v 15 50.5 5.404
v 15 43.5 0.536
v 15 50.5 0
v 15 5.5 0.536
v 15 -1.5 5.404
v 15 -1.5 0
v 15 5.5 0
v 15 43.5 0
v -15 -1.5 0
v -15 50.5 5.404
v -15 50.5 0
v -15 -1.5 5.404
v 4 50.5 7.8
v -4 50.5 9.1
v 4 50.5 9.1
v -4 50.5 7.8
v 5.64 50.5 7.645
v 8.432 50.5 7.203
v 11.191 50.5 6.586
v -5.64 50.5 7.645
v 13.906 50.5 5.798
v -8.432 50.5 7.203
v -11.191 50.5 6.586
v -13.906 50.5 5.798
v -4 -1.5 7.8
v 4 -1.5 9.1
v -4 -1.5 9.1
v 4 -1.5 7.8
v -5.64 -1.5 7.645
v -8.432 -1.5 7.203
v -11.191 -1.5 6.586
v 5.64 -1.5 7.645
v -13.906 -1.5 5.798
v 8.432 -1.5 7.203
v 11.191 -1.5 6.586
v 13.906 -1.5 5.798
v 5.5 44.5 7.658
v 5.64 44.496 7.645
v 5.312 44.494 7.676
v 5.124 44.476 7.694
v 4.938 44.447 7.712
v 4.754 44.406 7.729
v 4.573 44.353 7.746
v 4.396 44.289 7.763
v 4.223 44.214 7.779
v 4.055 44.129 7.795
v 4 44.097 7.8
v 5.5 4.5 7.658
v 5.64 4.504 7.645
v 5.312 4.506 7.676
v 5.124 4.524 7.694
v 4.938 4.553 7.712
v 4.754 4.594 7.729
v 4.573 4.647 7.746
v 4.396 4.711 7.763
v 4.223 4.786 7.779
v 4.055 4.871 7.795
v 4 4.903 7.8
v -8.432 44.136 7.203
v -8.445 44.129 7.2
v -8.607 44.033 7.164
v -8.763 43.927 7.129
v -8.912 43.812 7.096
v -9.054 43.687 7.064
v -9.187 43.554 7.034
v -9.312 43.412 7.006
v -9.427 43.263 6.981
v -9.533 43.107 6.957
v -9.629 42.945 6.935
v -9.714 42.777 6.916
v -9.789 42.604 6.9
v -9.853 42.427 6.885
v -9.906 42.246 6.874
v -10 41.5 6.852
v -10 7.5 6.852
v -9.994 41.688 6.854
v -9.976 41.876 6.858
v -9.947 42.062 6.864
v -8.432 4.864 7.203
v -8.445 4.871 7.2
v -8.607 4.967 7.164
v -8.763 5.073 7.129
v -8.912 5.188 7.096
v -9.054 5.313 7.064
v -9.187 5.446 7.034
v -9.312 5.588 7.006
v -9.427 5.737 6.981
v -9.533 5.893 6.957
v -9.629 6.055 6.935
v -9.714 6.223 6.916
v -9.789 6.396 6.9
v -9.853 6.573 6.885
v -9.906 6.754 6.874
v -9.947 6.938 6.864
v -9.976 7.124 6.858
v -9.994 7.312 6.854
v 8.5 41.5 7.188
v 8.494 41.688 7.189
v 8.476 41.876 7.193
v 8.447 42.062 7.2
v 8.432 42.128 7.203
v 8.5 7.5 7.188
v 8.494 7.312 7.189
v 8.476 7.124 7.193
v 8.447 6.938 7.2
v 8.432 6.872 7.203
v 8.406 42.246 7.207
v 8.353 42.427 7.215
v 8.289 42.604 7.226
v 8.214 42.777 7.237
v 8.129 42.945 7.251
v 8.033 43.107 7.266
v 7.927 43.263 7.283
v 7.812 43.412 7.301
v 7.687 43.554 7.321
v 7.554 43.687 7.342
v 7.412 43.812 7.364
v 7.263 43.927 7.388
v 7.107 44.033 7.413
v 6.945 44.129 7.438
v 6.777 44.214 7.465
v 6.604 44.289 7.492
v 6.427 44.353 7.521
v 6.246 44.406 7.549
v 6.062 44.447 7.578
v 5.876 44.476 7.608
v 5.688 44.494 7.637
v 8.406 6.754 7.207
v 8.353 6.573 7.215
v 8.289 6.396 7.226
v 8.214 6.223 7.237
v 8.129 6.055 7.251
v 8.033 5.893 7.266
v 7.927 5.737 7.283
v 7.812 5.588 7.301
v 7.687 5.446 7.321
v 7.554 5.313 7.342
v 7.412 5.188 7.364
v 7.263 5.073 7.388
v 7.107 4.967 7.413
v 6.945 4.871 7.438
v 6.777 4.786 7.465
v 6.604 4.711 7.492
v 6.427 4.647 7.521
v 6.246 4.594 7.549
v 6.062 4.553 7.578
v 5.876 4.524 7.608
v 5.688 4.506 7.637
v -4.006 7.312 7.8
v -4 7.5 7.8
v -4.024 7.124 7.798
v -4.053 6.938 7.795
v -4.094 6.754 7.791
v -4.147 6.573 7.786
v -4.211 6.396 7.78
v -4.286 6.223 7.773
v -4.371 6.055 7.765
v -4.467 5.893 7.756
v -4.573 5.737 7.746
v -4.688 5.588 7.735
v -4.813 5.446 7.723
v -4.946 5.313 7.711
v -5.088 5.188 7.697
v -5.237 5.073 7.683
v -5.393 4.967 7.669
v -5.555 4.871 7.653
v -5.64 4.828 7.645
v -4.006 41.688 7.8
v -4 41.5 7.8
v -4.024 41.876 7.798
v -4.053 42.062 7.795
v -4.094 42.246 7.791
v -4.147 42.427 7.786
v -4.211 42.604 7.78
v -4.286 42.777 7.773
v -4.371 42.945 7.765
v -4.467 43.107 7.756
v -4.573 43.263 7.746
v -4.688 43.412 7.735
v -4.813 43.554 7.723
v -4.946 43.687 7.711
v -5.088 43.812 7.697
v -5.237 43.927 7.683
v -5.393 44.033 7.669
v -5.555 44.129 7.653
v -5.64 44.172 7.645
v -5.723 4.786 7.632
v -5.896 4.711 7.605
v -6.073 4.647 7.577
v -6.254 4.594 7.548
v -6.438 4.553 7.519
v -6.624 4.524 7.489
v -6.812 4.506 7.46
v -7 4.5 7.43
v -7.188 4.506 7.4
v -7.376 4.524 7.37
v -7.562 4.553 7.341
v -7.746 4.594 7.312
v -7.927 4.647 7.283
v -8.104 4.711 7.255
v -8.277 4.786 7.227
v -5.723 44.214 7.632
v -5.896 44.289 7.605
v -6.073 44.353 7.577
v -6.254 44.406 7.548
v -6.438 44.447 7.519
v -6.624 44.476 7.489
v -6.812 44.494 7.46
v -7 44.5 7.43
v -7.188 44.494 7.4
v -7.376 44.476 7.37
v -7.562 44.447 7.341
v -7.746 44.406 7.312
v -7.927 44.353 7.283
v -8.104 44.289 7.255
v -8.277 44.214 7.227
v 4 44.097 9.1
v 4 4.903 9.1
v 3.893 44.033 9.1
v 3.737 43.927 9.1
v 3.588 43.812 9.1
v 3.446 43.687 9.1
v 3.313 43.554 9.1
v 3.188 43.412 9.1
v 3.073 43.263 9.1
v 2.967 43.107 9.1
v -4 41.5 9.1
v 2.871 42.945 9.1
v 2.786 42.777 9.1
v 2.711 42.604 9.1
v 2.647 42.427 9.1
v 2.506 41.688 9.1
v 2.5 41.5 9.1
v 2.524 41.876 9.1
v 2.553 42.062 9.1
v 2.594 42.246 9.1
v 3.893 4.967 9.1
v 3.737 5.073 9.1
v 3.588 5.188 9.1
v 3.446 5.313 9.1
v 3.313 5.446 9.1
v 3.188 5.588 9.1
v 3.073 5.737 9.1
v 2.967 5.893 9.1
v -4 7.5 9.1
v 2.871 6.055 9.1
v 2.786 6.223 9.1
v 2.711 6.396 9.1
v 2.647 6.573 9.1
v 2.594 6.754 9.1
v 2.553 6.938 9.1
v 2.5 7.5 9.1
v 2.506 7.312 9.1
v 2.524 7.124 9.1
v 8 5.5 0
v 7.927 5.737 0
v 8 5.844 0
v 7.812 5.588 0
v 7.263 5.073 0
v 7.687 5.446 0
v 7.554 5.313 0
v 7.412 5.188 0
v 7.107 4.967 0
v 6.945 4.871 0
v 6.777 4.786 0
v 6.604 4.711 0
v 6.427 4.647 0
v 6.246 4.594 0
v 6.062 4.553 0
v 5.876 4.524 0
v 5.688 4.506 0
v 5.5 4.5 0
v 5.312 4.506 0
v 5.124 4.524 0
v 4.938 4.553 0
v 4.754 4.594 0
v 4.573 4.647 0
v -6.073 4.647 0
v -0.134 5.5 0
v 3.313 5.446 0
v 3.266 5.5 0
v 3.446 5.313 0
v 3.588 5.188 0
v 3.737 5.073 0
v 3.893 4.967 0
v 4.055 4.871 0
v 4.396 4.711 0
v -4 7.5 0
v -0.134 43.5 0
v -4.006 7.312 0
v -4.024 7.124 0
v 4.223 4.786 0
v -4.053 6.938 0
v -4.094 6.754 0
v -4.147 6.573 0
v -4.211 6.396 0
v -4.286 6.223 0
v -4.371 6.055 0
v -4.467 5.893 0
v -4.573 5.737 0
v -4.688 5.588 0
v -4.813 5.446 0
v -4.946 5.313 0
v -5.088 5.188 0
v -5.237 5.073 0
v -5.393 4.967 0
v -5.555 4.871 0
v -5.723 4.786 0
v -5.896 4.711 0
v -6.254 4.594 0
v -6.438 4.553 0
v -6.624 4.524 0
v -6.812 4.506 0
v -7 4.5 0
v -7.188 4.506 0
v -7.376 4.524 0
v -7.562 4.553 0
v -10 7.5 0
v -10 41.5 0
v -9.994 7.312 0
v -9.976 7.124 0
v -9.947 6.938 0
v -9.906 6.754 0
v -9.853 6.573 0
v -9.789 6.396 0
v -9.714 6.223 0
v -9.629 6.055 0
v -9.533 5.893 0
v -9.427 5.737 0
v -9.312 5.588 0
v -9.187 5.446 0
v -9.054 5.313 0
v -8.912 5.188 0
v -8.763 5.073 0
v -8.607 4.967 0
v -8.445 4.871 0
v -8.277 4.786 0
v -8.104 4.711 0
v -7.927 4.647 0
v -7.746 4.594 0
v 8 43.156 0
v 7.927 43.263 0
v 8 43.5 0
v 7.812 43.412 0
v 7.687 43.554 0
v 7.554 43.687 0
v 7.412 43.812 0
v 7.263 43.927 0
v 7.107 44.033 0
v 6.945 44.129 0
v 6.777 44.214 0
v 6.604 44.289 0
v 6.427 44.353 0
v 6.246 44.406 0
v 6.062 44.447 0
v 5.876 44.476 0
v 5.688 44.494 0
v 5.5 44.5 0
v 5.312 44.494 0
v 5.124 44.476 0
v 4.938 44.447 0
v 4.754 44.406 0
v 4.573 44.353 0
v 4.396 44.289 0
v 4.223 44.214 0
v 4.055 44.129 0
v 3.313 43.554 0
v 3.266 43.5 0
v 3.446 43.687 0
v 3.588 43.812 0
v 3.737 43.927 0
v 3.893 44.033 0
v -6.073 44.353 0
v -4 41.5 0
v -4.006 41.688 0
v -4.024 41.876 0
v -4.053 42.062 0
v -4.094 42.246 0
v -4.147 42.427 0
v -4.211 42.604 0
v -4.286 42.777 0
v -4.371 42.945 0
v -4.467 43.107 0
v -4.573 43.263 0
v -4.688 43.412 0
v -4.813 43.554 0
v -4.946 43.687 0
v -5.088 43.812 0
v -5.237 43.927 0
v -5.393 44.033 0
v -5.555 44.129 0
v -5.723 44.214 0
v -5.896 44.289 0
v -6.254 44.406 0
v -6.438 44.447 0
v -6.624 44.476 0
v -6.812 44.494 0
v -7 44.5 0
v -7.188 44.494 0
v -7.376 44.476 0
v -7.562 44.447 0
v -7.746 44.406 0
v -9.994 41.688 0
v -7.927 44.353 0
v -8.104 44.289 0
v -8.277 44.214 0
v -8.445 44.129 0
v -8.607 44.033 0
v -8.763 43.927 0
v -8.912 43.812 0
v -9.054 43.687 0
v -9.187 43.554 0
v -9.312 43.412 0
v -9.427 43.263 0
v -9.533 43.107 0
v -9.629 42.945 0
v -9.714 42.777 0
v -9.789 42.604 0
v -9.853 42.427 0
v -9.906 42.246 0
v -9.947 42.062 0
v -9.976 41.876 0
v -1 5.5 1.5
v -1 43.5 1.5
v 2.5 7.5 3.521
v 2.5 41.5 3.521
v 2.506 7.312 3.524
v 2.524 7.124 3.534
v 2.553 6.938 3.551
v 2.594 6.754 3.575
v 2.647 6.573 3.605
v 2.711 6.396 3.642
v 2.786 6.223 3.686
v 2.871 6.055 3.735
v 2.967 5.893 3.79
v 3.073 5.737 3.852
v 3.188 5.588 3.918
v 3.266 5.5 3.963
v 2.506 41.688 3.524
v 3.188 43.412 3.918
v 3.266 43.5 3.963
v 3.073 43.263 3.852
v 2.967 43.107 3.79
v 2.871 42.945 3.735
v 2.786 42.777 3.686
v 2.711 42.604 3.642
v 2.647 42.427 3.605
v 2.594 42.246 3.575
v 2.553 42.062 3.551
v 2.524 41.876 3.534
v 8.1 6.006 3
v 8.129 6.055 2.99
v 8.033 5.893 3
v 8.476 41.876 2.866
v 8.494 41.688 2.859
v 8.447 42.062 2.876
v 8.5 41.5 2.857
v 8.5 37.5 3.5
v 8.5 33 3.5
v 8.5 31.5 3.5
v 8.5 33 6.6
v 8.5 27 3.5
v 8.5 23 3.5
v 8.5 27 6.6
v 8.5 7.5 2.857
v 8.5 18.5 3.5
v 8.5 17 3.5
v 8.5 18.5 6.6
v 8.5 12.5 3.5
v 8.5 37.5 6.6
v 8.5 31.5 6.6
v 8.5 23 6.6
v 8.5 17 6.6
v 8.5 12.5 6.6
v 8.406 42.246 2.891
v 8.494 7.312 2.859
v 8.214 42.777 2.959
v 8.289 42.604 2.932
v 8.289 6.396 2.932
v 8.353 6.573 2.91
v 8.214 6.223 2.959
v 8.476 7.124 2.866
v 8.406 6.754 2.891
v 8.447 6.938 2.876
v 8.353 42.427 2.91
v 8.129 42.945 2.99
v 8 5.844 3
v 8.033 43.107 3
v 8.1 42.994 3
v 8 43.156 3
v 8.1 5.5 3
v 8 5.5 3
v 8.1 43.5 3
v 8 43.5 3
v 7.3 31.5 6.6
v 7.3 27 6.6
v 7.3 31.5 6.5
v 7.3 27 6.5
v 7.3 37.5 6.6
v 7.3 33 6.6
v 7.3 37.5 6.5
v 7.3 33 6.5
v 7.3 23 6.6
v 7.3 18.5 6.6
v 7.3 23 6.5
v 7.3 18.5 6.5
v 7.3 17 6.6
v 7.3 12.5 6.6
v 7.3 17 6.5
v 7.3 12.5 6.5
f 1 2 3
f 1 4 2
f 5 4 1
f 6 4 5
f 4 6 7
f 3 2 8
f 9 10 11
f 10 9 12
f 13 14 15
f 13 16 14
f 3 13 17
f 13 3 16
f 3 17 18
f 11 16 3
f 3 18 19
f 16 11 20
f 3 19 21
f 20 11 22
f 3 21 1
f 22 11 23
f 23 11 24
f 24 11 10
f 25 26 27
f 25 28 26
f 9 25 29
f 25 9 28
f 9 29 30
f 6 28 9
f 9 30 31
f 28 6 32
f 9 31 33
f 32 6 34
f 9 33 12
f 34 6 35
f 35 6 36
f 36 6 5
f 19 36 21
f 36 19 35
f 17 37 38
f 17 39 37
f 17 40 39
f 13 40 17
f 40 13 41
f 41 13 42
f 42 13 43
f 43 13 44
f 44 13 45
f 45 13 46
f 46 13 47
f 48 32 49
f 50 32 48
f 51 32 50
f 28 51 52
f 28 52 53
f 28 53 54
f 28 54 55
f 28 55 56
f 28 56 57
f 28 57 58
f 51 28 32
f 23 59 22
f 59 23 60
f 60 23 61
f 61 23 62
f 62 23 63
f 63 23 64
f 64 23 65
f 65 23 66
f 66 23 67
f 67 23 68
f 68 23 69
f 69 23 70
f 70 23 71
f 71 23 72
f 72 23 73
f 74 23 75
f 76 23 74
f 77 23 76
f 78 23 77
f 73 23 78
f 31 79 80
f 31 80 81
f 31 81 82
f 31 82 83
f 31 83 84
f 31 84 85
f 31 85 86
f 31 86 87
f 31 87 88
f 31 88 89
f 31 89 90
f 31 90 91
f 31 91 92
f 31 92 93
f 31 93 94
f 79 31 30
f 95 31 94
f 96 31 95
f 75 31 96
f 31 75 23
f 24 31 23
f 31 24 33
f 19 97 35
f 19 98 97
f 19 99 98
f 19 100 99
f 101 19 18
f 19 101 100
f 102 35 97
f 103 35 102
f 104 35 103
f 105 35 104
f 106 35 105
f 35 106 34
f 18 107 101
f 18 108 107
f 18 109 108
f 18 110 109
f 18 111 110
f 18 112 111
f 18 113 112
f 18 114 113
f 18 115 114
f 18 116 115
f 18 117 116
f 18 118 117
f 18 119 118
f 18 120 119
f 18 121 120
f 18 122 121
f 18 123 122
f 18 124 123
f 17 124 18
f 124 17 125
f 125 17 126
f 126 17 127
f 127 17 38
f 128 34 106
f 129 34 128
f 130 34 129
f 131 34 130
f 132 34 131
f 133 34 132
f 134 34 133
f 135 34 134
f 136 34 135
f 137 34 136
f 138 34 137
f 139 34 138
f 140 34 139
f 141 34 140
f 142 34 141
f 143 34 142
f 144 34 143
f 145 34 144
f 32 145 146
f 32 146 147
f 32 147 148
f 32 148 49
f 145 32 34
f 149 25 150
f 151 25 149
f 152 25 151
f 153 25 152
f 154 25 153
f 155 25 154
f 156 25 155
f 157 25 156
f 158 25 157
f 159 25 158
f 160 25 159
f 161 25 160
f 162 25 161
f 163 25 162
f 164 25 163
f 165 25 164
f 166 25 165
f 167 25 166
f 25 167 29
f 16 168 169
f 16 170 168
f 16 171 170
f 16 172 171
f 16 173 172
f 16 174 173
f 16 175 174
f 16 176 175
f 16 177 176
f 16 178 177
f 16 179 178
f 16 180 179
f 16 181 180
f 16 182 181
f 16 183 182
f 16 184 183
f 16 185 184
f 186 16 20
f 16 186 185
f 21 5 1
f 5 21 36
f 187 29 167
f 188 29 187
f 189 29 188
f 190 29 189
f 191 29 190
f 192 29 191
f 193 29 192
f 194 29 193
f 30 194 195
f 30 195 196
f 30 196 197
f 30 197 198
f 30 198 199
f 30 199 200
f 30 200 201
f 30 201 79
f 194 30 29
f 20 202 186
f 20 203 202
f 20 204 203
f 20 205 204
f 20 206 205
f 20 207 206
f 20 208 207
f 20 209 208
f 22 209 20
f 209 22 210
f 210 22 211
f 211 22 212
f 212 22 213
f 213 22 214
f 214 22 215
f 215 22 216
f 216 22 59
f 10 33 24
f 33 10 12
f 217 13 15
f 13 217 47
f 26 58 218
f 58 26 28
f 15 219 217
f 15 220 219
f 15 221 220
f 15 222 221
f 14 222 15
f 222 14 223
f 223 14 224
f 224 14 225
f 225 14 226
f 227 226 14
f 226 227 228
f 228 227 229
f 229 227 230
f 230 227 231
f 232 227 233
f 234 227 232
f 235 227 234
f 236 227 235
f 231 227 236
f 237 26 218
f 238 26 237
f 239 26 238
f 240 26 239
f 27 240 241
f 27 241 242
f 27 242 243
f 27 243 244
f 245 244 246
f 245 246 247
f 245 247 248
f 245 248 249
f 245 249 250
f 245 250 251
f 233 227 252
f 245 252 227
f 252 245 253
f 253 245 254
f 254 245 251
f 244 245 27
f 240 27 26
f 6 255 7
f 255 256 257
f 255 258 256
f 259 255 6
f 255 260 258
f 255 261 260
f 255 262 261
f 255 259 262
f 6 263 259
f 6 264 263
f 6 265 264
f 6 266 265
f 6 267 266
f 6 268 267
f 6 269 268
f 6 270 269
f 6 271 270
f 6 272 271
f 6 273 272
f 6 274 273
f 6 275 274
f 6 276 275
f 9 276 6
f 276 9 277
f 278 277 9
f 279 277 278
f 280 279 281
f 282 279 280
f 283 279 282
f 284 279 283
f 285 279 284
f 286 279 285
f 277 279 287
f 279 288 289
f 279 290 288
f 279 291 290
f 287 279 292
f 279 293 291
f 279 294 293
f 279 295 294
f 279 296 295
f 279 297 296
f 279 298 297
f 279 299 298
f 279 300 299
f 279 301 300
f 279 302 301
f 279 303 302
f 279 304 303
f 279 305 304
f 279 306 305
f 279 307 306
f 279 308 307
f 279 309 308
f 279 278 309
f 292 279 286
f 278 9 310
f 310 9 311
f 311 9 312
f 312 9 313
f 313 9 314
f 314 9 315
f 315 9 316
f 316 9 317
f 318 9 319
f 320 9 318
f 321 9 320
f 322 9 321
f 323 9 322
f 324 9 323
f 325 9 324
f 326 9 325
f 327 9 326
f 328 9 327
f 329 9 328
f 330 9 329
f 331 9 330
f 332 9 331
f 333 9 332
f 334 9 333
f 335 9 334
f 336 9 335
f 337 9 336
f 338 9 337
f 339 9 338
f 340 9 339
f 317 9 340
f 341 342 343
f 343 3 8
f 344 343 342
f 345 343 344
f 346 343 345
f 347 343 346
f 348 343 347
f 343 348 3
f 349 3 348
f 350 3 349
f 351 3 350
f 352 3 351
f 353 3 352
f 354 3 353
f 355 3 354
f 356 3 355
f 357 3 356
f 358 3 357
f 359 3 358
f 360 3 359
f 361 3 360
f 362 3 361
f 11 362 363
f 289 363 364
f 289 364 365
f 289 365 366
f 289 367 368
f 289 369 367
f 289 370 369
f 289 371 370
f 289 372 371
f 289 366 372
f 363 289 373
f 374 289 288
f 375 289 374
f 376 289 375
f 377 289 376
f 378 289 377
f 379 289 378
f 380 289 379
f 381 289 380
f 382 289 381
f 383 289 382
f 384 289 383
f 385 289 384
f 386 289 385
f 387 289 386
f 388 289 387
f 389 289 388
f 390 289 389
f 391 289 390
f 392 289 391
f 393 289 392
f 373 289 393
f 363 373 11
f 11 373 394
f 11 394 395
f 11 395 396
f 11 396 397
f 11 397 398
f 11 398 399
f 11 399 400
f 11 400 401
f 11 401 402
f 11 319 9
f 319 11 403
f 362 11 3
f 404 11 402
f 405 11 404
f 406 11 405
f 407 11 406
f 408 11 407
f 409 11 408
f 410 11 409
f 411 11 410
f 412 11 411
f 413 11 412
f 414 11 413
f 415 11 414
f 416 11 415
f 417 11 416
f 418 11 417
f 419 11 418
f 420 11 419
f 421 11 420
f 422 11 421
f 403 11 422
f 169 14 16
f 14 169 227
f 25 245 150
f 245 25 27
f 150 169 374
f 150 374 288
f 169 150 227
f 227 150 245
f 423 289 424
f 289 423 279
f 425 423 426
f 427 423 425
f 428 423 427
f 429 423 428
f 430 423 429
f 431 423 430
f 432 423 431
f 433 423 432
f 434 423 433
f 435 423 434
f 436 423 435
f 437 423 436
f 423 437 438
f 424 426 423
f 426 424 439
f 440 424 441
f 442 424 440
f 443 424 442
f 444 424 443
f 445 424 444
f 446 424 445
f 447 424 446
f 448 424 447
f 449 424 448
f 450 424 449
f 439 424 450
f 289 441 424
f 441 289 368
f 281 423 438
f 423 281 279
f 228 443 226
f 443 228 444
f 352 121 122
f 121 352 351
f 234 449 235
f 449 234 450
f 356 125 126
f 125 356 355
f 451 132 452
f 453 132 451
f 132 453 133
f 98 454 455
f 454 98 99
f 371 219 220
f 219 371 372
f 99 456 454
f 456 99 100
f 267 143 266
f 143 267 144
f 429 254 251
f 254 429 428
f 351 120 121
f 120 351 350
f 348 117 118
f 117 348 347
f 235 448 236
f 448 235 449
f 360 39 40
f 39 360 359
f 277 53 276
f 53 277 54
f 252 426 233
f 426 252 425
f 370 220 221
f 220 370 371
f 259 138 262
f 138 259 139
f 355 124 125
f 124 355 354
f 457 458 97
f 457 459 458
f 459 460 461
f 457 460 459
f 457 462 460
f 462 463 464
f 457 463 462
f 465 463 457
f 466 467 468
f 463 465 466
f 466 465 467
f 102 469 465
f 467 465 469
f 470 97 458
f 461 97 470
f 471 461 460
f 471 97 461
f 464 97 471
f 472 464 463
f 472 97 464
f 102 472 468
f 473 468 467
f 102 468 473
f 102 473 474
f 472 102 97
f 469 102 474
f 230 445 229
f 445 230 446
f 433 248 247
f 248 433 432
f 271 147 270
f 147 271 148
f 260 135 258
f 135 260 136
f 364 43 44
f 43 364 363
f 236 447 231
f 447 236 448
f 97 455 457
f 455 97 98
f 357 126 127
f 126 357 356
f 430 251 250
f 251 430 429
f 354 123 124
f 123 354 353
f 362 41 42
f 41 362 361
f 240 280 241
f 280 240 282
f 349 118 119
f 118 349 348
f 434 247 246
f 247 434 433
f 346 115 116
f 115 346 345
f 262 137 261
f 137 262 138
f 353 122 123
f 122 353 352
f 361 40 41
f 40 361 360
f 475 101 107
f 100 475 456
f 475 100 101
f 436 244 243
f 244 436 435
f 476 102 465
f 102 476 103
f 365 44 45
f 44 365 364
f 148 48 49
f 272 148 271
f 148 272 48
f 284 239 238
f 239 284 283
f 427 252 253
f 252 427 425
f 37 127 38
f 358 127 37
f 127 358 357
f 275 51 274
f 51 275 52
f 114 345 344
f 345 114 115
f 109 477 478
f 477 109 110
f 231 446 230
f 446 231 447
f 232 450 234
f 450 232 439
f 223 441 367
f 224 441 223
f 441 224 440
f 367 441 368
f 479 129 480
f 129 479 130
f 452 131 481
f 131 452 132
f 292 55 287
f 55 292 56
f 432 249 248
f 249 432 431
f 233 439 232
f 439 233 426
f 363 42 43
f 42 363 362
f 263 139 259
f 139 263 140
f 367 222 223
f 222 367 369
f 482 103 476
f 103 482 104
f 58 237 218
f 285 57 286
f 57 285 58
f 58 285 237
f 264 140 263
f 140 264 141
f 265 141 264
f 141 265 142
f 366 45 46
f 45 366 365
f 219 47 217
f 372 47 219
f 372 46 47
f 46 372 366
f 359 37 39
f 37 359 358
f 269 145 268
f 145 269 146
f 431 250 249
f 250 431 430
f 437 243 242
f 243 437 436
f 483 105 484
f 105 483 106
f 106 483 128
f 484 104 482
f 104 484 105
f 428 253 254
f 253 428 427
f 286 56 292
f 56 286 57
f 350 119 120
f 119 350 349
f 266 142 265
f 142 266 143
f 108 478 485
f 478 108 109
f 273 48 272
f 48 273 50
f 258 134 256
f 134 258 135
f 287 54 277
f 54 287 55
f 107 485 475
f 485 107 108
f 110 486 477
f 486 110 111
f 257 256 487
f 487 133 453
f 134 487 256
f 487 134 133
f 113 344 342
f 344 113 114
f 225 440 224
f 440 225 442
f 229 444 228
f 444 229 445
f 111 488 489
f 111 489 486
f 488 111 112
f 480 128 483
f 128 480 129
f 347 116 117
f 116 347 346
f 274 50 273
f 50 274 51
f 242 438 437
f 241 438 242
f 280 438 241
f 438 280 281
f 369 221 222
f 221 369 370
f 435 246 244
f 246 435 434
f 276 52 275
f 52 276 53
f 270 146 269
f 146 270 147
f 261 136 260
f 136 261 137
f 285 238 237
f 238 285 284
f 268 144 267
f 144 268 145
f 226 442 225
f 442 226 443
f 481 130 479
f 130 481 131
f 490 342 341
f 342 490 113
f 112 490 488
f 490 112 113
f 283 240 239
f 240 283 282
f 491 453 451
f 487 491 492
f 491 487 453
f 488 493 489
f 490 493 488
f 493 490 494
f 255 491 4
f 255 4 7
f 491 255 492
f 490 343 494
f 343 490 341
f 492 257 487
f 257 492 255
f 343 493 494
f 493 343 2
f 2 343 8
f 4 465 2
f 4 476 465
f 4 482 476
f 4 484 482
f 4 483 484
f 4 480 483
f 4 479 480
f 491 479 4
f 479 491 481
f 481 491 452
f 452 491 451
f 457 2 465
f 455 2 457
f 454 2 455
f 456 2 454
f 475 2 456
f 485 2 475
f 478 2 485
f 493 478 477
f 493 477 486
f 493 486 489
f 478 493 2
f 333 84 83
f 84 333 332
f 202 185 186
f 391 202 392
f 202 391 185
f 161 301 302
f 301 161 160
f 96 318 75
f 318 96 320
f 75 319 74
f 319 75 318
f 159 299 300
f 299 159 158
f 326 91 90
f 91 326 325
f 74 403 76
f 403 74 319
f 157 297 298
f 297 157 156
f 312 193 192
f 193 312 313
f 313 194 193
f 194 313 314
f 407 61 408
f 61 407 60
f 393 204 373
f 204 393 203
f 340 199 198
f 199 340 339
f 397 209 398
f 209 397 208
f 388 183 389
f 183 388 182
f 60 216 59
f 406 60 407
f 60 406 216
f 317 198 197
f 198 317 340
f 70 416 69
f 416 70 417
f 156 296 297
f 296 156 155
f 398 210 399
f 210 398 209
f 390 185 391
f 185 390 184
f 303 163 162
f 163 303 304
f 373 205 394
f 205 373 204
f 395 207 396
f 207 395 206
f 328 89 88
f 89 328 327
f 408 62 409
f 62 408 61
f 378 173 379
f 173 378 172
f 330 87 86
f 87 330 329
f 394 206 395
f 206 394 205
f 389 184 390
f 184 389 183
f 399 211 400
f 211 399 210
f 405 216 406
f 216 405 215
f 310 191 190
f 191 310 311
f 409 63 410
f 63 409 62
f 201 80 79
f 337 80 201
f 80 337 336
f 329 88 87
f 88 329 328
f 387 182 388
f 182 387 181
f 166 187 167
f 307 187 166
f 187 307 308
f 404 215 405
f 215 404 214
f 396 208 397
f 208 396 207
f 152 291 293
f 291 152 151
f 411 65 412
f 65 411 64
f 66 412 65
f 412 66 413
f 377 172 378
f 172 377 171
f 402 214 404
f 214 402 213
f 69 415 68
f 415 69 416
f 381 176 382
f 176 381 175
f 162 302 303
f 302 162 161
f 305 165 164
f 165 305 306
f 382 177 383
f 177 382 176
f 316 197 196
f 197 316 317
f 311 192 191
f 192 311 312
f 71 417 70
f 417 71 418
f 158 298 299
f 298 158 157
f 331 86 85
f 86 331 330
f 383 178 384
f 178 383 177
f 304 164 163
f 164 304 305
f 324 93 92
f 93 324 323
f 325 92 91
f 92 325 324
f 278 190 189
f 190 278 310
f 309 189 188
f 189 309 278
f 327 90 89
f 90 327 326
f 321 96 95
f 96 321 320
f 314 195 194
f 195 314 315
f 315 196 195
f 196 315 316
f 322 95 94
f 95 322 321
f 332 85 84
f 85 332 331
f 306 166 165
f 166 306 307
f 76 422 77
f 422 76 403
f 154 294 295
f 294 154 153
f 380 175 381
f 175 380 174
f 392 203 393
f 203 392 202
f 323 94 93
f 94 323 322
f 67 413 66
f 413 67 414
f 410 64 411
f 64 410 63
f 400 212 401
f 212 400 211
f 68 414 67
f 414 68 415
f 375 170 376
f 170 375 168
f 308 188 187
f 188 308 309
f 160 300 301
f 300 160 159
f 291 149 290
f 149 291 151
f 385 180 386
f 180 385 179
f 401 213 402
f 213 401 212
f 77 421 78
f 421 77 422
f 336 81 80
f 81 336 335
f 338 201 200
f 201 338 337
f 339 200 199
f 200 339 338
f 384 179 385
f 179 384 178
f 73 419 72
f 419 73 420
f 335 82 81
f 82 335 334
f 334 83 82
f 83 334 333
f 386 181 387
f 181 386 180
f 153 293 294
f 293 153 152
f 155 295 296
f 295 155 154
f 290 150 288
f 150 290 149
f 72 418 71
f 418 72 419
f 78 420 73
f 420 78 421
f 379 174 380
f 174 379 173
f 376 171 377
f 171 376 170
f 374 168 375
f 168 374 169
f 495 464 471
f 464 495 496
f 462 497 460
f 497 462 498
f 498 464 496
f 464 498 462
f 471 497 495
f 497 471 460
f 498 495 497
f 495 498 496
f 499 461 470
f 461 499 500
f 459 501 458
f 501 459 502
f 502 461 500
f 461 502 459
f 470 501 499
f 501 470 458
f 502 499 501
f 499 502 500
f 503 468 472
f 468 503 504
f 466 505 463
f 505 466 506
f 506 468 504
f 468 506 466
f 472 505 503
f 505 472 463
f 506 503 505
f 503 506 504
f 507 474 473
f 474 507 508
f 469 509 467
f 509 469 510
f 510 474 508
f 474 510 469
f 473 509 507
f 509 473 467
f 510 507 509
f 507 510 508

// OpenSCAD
//buckle
$fn=100;
rad=45;
tooth_t=1.3;
tooth_w=4.5;
module tooth(){
hull(){
    translate([-.1,0,0])cube([.1,tooth_w,3]);
    translate([-tooth_t,0,3])cube([tooth_t,tooth_w,.1]);}}
    //function of tooth
module itooth(){
hull(){
    translate([-.1,-tooth_w,0])cube([.1,tooth_w,3]);
    translate([-tooth_t,-tooth_w,3])cube([tooth_t,tooth_w,.1]);}}
    
difference(){
union(){
intersection(){
translate([-15,-1.5,3.5])cube([30,52,8-3.5]);//the bow
translate([0,-1.5,-rad+8])rotate([-90,0,0])cylinder(r=rad,h=52);}
translate([-4,-1.5,0])cube([8,52,7.6+1.5]);// the hill
translate([-15,-1.5,0])cube([30,52,3.5]); //the cube on the bottom
}//the body
//the cylindrical cut inside Opposite the tooth
translate([-1,5.5,1.5])rotate([0,60,0])cube([6,38,5]);
    
hull(){//the cut though upword for working left side
    translate([5.5,7.5,0])cylinder(r=3,h=10);
    translate([5.5,49-7.5,0])cylinder(r=3,h=10);}
hull(){//the ramp cut
    translate([15,5.5,0])cube([.1,38,.5]);
    translate([8,5.5,0])cube([.1,38,3]);}
hull(){//the cut through upward for fixed side the right side
    translate([-7,7.5,0])cylinder(r=3,h=10);
    translate([-7,49-7.5,0])cylinder(r=3,h=10);}}
//tooth
translate([8.6,27,3.5])tooth();
translate([8.6,27+1.5+4.5,3.5])tooth();
translate([8.6,23,3.5])itooth();
translate([8.6,23-1.5-4.5,3.5])itooth();          
module signeture(){
linear_extrude(height=2, convexity=4)
                text(" ", 
                     size=5,
                     font="Bitstream Vera Sans:style=Bold",
                     halign="center",
                     valign="center");}
//"Agency FB:style=Bold"the words on the top "Glia.Gaza"
translate([-.7,23,8])rotate([0,0,90])signeture();
